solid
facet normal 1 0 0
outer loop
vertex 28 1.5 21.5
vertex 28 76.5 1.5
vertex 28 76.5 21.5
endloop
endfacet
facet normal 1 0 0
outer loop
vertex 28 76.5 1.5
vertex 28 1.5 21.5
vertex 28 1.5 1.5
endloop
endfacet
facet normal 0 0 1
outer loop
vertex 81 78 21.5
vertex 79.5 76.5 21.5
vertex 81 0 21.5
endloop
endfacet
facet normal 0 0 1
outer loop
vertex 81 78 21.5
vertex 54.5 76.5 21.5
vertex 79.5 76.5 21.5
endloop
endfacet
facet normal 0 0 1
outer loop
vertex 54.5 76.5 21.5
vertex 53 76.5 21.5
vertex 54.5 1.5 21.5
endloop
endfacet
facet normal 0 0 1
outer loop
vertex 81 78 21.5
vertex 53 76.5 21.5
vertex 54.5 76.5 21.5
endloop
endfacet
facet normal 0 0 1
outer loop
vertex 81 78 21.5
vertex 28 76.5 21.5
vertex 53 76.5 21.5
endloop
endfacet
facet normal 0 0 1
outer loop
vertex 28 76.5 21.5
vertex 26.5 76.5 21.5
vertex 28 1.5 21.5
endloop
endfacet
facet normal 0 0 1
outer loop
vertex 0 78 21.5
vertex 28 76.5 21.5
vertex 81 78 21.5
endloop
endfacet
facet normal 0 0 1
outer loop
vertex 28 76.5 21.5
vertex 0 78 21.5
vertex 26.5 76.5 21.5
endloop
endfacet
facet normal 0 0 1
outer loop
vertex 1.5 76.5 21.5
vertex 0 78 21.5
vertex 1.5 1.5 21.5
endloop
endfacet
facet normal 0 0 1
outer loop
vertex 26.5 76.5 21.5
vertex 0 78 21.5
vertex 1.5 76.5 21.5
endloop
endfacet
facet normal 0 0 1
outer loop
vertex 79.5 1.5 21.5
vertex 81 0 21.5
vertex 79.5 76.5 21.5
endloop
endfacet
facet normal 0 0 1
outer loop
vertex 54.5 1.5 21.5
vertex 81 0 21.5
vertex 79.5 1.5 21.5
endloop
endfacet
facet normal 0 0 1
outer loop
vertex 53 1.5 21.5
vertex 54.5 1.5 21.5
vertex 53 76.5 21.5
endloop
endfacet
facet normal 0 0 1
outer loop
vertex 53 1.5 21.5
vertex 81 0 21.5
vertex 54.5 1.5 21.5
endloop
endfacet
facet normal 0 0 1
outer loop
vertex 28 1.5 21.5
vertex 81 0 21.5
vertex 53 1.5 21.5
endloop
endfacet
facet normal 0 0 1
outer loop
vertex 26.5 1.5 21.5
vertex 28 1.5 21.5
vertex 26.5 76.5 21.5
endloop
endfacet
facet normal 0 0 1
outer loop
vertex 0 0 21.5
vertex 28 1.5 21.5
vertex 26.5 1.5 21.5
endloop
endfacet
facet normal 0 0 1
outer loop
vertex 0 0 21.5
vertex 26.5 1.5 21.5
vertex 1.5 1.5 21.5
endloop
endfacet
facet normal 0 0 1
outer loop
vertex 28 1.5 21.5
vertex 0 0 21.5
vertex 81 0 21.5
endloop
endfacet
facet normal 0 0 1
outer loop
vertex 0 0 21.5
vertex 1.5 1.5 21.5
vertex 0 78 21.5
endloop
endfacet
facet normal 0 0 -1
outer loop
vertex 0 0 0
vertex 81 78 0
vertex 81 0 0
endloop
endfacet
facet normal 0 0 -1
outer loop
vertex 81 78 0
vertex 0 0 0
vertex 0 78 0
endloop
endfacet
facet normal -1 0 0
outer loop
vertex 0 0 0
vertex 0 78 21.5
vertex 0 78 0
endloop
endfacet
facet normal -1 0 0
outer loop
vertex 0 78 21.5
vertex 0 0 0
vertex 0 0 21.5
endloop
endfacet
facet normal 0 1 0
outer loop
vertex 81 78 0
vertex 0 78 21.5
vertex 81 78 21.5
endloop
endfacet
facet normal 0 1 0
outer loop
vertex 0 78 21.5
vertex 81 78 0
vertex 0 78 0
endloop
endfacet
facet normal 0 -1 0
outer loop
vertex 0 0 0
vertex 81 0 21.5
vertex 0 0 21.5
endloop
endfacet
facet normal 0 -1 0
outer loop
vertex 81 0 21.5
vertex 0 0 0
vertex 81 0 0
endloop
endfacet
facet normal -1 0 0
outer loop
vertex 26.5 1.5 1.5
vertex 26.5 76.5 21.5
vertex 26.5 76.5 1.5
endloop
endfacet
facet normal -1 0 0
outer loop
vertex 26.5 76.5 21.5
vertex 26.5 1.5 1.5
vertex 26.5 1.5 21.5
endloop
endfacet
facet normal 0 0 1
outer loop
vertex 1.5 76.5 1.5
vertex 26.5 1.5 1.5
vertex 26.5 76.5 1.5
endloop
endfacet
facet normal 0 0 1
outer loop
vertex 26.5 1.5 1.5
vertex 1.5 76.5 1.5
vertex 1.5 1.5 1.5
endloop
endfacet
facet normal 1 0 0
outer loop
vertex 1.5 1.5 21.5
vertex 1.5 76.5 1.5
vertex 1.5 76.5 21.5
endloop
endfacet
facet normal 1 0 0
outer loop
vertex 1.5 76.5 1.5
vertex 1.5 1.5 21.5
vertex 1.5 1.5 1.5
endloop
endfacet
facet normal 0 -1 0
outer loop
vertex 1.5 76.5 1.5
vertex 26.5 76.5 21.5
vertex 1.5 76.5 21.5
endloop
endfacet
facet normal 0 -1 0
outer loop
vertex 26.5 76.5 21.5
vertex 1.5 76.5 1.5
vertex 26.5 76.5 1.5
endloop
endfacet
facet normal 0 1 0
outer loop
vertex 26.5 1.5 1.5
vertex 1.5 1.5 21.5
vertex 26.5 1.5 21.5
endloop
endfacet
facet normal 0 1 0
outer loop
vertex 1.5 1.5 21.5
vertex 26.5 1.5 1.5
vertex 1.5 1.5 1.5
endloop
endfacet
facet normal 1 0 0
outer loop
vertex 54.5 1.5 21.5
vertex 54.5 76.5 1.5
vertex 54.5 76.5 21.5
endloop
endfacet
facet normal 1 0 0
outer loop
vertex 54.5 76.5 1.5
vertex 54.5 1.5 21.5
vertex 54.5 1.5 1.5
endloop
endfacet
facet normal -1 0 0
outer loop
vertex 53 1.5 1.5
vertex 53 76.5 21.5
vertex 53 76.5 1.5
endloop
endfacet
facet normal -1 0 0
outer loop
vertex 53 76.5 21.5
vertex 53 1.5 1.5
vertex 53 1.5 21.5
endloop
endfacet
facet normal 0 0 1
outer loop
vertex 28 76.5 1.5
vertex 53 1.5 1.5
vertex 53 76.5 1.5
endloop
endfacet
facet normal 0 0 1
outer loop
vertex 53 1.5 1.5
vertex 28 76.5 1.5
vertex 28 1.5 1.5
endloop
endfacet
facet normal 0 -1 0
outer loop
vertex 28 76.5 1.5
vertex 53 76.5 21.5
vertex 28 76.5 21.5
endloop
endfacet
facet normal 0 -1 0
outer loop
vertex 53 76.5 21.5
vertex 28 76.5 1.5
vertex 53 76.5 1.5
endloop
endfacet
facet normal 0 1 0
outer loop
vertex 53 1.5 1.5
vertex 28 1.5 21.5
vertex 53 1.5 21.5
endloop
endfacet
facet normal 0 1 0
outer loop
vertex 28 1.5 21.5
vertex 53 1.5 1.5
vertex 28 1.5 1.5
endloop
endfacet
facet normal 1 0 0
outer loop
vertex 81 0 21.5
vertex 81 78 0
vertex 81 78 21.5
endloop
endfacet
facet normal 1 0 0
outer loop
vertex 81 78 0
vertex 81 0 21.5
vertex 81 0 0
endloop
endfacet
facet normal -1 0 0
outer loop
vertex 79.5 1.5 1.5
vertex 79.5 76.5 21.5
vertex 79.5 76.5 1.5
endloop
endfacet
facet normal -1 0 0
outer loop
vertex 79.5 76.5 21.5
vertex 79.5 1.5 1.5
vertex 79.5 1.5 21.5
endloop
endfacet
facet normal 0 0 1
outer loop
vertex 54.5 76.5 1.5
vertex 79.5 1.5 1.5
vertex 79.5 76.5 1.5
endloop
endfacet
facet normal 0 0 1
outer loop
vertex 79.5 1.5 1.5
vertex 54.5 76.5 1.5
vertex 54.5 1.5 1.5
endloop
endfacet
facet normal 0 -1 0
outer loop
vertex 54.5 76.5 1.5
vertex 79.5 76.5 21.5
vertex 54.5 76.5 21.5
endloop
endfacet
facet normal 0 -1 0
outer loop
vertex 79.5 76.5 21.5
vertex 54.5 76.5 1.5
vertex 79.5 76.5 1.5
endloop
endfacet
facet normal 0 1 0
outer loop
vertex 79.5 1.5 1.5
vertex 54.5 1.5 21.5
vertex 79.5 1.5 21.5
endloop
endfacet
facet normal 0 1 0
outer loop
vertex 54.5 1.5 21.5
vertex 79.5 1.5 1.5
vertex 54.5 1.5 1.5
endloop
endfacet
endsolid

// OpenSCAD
module slot(dim=[25, 75, 20], wall=1.5) {
  difference() {
    outerdim = [
      dim[0] + wall*2,
      dim[1] + wall*2,
      dim[2] + wall
    ];
    cube(outerdim);
    translate([wall, wall, wall])
      cube(dim);
  }
}

module tray(dim=[25, 75, 20], wall=1.5, nslots=3) {
  for (i=[0:nslots-1]) {
    translate([(dim[0]+wall)*i, 0, 0])
      slot(dim=dim, wall=wall);
  }
}

tray();
